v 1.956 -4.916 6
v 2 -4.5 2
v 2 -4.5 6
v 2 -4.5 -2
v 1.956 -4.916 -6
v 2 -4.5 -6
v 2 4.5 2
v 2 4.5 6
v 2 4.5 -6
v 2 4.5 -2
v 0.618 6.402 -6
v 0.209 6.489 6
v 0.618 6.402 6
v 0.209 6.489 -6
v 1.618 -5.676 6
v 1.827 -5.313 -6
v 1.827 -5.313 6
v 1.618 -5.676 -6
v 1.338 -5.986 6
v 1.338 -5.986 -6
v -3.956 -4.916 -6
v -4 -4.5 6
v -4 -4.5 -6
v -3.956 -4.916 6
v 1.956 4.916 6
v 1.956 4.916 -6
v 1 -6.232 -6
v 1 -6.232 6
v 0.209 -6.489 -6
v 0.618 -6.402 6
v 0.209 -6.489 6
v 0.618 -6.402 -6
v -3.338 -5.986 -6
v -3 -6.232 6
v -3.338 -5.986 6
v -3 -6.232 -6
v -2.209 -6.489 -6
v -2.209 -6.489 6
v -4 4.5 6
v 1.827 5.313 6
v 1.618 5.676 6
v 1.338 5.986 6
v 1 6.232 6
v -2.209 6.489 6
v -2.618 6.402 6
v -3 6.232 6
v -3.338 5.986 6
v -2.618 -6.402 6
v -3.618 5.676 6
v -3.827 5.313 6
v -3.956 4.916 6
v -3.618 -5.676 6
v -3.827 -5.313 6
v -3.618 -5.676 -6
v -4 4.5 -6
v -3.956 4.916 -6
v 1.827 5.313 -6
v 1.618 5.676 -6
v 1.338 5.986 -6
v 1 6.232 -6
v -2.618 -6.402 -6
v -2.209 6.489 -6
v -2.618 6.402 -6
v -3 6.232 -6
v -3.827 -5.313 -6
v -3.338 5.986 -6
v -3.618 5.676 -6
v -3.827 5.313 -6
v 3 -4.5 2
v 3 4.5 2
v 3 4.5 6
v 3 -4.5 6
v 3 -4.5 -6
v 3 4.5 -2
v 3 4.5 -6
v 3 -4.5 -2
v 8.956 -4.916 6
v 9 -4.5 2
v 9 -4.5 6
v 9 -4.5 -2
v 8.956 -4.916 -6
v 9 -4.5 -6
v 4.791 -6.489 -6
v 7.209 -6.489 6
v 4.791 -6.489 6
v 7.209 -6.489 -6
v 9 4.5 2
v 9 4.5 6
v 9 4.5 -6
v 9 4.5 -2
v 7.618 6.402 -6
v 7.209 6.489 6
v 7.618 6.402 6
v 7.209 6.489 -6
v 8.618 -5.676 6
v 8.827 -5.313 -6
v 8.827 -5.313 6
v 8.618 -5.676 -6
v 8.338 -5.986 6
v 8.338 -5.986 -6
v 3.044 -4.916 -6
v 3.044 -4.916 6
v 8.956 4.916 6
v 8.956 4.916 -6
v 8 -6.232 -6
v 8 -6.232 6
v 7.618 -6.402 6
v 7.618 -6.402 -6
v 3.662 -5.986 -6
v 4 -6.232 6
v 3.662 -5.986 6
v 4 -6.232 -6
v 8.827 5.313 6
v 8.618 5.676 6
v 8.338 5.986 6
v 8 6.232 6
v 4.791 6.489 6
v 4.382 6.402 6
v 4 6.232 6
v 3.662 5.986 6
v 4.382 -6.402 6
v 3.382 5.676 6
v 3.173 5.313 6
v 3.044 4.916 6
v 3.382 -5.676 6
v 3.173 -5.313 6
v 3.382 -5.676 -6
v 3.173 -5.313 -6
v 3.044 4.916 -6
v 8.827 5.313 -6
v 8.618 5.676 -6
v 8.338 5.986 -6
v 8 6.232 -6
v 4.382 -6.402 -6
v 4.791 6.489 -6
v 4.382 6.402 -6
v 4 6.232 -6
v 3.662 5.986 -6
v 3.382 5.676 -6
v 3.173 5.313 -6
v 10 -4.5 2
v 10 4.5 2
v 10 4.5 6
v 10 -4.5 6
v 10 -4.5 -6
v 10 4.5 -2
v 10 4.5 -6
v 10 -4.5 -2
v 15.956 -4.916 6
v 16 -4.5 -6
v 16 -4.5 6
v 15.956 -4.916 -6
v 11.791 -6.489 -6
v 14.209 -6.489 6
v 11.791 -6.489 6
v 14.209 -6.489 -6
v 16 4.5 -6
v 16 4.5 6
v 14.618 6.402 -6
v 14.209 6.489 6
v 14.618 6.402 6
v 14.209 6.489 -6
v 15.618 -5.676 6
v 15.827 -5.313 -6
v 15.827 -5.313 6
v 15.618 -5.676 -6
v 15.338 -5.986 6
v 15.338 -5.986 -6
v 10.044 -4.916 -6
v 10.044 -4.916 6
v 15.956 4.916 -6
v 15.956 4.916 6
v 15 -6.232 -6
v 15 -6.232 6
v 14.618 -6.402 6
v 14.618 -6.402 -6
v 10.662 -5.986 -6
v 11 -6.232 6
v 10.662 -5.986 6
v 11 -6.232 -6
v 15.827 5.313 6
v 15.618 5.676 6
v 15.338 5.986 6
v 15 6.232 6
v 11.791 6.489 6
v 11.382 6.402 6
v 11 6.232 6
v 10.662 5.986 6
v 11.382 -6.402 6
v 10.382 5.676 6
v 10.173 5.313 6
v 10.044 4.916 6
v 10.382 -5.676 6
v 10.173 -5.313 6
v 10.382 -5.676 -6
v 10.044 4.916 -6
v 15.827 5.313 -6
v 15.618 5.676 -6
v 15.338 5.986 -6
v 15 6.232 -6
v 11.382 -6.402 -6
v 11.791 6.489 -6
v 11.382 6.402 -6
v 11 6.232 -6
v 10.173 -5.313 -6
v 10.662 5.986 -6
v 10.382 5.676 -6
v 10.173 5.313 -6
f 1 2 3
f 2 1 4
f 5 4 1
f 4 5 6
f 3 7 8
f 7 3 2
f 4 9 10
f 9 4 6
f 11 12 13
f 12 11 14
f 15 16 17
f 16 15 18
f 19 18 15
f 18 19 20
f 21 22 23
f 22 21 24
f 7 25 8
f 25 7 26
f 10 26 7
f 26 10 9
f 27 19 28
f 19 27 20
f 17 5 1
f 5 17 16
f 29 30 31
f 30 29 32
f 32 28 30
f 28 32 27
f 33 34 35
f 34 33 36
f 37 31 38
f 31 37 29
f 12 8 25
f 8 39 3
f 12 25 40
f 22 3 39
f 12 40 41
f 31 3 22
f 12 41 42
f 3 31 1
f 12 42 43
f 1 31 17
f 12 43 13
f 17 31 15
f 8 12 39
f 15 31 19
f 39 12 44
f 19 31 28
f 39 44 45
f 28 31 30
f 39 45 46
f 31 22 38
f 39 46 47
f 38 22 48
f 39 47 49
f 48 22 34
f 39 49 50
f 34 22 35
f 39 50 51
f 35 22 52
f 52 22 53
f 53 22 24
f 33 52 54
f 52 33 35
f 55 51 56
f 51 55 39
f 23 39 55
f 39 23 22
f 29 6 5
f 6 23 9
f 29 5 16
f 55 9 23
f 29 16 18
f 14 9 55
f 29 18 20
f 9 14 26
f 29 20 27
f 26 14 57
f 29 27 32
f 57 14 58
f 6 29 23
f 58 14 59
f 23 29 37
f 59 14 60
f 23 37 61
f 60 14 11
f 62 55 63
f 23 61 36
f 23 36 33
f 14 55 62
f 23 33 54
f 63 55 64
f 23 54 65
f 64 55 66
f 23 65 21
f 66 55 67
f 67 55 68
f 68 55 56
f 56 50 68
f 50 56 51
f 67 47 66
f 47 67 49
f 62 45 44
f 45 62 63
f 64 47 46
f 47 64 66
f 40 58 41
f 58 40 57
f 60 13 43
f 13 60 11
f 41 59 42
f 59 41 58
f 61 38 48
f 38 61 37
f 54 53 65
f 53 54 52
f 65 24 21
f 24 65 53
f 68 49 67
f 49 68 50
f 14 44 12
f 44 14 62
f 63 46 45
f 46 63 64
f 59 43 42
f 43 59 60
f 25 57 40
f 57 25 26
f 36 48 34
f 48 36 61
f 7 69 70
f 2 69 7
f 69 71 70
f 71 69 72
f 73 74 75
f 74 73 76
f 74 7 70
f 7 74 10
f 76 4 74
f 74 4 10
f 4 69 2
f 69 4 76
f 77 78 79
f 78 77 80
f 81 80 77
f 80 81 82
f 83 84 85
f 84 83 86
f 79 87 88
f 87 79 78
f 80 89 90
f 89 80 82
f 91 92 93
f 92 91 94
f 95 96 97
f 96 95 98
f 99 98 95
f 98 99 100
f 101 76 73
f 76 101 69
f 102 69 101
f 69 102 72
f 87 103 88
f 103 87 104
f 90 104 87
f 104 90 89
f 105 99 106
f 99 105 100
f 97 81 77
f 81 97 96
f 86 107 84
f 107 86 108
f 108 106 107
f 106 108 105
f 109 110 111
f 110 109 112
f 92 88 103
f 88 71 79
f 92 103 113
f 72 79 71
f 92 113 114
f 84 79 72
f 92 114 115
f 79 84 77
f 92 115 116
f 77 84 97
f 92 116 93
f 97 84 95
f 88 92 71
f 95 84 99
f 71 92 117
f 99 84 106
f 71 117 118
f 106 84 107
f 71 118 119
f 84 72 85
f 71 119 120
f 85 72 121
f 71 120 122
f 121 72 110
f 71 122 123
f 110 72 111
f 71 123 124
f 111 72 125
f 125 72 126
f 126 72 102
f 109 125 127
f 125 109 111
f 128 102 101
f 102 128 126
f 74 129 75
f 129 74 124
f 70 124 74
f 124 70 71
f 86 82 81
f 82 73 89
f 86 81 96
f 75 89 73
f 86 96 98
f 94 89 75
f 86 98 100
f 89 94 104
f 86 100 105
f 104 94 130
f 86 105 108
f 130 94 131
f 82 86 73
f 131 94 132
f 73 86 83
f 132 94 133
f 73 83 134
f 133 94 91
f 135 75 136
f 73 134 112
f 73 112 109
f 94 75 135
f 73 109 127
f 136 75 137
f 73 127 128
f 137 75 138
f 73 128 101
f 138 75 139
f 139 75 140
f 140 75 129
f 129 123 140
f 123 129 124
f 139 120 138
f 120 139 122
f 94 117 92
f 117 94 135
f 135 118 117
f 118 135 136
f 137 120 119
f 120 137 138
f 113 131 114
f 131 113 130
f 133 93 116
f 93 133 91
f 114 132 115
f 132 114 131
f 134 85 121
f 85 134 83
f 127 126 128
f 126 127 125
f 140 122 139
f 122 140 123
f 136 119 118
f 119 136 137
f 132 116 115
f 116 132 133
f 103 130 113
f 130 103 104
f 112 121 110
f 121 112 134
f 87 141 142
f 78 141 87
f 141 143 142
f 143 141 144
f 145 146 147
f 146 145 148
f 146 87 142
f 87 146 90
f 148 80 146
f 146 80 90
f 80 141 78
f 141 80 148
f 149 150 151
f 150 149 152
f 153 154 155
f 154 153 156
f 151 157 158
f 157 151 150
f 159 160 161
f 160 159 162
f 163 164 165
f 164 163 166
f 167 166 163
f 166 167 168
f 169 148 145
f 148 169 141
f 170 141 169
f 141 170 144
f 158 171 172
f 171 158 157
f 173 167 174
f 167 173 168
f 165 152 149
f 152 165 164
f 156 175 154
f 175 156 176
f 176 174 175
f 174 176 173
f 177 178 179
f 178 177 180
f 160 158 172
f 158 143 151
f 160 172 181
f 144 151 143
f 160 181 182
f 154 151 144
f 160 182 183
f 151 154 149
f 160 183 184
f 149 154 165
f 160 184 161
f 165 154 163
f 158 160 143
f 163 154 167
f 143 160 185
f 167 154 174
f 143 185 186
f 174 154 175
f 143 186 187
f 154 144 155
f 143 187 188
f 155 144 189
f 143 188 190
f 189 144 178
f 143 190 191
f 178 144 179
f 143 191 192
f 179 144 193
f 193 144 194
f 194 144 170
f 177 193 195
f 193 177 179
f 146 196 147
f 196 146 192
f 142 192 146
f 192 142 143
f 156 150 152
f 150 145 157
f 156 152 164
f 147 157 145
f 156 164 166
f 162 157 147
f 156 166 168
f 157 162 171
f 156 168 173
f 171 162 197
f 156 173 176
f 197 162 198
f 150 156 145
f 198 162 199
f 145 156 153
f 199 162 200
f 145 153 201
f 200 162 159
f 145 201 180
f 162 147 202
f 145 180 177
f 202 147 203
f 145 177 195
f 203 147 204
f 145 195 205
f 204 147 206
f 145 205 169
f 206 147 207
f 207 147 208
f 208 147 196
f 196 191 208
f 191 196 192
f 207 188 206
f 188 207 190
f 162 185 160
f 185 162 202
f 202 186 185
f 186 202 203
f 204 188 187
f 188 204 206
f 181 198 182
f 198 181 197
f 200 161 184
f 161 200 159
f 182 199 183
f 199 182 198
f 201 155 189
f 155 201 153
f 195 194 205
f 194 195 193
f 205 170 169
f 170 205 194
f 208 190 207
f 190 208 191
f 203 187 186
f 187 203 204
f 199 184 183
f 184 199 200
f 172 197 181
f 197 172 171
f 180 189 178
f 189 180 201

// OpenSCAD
$fn=30;
height=12;
radius=2;
union(){
    hull(){
        translate([0,-4.5,0])cylinder(r=radius,h=height, center=true);
        translate([-2,4.5,0])cylinder(r=radius,h=height, center=true);
        translate([0,4.5,0])cylinder(r=radius,h=height, center=true);
        translate([-2,-4.5,0])cylinder(r=radius,h=height, center=true);
  }
  translate([2.5,0,0])cube([radius/2,radius+7,radius+2],center=true);
   translate([7,0,0]) hull(){
        translate([0,-4.5,0])cylinder(r=radius,h=height, center=true);
        translate([-2,4.5,0])cylinder(r=radius,h=height, center=true);
        translate([0,4.5,0])cylinder(r=radius,h=height, center=true);
        translate([-2,-4.5,0])cylinder(r=radius,h=height, center=true);
  }
  translate([9.5,0,0])cube([radius/2,radius+7,radius+2],center=true);
   translate([14,0,0]) hull(){
        translate([0,-4.5,0])cylinder(r=radius,h=height, center=true);
        translate([-2,4.5,0])cylinder(r=radius,h=height, center=true);
        translate([0,4.5,0])cylinder(r=radius,h=height, center=true);
        translate([-2,-4.5,0])cylinder(r=radius,h=height, center=true);
  }
}
